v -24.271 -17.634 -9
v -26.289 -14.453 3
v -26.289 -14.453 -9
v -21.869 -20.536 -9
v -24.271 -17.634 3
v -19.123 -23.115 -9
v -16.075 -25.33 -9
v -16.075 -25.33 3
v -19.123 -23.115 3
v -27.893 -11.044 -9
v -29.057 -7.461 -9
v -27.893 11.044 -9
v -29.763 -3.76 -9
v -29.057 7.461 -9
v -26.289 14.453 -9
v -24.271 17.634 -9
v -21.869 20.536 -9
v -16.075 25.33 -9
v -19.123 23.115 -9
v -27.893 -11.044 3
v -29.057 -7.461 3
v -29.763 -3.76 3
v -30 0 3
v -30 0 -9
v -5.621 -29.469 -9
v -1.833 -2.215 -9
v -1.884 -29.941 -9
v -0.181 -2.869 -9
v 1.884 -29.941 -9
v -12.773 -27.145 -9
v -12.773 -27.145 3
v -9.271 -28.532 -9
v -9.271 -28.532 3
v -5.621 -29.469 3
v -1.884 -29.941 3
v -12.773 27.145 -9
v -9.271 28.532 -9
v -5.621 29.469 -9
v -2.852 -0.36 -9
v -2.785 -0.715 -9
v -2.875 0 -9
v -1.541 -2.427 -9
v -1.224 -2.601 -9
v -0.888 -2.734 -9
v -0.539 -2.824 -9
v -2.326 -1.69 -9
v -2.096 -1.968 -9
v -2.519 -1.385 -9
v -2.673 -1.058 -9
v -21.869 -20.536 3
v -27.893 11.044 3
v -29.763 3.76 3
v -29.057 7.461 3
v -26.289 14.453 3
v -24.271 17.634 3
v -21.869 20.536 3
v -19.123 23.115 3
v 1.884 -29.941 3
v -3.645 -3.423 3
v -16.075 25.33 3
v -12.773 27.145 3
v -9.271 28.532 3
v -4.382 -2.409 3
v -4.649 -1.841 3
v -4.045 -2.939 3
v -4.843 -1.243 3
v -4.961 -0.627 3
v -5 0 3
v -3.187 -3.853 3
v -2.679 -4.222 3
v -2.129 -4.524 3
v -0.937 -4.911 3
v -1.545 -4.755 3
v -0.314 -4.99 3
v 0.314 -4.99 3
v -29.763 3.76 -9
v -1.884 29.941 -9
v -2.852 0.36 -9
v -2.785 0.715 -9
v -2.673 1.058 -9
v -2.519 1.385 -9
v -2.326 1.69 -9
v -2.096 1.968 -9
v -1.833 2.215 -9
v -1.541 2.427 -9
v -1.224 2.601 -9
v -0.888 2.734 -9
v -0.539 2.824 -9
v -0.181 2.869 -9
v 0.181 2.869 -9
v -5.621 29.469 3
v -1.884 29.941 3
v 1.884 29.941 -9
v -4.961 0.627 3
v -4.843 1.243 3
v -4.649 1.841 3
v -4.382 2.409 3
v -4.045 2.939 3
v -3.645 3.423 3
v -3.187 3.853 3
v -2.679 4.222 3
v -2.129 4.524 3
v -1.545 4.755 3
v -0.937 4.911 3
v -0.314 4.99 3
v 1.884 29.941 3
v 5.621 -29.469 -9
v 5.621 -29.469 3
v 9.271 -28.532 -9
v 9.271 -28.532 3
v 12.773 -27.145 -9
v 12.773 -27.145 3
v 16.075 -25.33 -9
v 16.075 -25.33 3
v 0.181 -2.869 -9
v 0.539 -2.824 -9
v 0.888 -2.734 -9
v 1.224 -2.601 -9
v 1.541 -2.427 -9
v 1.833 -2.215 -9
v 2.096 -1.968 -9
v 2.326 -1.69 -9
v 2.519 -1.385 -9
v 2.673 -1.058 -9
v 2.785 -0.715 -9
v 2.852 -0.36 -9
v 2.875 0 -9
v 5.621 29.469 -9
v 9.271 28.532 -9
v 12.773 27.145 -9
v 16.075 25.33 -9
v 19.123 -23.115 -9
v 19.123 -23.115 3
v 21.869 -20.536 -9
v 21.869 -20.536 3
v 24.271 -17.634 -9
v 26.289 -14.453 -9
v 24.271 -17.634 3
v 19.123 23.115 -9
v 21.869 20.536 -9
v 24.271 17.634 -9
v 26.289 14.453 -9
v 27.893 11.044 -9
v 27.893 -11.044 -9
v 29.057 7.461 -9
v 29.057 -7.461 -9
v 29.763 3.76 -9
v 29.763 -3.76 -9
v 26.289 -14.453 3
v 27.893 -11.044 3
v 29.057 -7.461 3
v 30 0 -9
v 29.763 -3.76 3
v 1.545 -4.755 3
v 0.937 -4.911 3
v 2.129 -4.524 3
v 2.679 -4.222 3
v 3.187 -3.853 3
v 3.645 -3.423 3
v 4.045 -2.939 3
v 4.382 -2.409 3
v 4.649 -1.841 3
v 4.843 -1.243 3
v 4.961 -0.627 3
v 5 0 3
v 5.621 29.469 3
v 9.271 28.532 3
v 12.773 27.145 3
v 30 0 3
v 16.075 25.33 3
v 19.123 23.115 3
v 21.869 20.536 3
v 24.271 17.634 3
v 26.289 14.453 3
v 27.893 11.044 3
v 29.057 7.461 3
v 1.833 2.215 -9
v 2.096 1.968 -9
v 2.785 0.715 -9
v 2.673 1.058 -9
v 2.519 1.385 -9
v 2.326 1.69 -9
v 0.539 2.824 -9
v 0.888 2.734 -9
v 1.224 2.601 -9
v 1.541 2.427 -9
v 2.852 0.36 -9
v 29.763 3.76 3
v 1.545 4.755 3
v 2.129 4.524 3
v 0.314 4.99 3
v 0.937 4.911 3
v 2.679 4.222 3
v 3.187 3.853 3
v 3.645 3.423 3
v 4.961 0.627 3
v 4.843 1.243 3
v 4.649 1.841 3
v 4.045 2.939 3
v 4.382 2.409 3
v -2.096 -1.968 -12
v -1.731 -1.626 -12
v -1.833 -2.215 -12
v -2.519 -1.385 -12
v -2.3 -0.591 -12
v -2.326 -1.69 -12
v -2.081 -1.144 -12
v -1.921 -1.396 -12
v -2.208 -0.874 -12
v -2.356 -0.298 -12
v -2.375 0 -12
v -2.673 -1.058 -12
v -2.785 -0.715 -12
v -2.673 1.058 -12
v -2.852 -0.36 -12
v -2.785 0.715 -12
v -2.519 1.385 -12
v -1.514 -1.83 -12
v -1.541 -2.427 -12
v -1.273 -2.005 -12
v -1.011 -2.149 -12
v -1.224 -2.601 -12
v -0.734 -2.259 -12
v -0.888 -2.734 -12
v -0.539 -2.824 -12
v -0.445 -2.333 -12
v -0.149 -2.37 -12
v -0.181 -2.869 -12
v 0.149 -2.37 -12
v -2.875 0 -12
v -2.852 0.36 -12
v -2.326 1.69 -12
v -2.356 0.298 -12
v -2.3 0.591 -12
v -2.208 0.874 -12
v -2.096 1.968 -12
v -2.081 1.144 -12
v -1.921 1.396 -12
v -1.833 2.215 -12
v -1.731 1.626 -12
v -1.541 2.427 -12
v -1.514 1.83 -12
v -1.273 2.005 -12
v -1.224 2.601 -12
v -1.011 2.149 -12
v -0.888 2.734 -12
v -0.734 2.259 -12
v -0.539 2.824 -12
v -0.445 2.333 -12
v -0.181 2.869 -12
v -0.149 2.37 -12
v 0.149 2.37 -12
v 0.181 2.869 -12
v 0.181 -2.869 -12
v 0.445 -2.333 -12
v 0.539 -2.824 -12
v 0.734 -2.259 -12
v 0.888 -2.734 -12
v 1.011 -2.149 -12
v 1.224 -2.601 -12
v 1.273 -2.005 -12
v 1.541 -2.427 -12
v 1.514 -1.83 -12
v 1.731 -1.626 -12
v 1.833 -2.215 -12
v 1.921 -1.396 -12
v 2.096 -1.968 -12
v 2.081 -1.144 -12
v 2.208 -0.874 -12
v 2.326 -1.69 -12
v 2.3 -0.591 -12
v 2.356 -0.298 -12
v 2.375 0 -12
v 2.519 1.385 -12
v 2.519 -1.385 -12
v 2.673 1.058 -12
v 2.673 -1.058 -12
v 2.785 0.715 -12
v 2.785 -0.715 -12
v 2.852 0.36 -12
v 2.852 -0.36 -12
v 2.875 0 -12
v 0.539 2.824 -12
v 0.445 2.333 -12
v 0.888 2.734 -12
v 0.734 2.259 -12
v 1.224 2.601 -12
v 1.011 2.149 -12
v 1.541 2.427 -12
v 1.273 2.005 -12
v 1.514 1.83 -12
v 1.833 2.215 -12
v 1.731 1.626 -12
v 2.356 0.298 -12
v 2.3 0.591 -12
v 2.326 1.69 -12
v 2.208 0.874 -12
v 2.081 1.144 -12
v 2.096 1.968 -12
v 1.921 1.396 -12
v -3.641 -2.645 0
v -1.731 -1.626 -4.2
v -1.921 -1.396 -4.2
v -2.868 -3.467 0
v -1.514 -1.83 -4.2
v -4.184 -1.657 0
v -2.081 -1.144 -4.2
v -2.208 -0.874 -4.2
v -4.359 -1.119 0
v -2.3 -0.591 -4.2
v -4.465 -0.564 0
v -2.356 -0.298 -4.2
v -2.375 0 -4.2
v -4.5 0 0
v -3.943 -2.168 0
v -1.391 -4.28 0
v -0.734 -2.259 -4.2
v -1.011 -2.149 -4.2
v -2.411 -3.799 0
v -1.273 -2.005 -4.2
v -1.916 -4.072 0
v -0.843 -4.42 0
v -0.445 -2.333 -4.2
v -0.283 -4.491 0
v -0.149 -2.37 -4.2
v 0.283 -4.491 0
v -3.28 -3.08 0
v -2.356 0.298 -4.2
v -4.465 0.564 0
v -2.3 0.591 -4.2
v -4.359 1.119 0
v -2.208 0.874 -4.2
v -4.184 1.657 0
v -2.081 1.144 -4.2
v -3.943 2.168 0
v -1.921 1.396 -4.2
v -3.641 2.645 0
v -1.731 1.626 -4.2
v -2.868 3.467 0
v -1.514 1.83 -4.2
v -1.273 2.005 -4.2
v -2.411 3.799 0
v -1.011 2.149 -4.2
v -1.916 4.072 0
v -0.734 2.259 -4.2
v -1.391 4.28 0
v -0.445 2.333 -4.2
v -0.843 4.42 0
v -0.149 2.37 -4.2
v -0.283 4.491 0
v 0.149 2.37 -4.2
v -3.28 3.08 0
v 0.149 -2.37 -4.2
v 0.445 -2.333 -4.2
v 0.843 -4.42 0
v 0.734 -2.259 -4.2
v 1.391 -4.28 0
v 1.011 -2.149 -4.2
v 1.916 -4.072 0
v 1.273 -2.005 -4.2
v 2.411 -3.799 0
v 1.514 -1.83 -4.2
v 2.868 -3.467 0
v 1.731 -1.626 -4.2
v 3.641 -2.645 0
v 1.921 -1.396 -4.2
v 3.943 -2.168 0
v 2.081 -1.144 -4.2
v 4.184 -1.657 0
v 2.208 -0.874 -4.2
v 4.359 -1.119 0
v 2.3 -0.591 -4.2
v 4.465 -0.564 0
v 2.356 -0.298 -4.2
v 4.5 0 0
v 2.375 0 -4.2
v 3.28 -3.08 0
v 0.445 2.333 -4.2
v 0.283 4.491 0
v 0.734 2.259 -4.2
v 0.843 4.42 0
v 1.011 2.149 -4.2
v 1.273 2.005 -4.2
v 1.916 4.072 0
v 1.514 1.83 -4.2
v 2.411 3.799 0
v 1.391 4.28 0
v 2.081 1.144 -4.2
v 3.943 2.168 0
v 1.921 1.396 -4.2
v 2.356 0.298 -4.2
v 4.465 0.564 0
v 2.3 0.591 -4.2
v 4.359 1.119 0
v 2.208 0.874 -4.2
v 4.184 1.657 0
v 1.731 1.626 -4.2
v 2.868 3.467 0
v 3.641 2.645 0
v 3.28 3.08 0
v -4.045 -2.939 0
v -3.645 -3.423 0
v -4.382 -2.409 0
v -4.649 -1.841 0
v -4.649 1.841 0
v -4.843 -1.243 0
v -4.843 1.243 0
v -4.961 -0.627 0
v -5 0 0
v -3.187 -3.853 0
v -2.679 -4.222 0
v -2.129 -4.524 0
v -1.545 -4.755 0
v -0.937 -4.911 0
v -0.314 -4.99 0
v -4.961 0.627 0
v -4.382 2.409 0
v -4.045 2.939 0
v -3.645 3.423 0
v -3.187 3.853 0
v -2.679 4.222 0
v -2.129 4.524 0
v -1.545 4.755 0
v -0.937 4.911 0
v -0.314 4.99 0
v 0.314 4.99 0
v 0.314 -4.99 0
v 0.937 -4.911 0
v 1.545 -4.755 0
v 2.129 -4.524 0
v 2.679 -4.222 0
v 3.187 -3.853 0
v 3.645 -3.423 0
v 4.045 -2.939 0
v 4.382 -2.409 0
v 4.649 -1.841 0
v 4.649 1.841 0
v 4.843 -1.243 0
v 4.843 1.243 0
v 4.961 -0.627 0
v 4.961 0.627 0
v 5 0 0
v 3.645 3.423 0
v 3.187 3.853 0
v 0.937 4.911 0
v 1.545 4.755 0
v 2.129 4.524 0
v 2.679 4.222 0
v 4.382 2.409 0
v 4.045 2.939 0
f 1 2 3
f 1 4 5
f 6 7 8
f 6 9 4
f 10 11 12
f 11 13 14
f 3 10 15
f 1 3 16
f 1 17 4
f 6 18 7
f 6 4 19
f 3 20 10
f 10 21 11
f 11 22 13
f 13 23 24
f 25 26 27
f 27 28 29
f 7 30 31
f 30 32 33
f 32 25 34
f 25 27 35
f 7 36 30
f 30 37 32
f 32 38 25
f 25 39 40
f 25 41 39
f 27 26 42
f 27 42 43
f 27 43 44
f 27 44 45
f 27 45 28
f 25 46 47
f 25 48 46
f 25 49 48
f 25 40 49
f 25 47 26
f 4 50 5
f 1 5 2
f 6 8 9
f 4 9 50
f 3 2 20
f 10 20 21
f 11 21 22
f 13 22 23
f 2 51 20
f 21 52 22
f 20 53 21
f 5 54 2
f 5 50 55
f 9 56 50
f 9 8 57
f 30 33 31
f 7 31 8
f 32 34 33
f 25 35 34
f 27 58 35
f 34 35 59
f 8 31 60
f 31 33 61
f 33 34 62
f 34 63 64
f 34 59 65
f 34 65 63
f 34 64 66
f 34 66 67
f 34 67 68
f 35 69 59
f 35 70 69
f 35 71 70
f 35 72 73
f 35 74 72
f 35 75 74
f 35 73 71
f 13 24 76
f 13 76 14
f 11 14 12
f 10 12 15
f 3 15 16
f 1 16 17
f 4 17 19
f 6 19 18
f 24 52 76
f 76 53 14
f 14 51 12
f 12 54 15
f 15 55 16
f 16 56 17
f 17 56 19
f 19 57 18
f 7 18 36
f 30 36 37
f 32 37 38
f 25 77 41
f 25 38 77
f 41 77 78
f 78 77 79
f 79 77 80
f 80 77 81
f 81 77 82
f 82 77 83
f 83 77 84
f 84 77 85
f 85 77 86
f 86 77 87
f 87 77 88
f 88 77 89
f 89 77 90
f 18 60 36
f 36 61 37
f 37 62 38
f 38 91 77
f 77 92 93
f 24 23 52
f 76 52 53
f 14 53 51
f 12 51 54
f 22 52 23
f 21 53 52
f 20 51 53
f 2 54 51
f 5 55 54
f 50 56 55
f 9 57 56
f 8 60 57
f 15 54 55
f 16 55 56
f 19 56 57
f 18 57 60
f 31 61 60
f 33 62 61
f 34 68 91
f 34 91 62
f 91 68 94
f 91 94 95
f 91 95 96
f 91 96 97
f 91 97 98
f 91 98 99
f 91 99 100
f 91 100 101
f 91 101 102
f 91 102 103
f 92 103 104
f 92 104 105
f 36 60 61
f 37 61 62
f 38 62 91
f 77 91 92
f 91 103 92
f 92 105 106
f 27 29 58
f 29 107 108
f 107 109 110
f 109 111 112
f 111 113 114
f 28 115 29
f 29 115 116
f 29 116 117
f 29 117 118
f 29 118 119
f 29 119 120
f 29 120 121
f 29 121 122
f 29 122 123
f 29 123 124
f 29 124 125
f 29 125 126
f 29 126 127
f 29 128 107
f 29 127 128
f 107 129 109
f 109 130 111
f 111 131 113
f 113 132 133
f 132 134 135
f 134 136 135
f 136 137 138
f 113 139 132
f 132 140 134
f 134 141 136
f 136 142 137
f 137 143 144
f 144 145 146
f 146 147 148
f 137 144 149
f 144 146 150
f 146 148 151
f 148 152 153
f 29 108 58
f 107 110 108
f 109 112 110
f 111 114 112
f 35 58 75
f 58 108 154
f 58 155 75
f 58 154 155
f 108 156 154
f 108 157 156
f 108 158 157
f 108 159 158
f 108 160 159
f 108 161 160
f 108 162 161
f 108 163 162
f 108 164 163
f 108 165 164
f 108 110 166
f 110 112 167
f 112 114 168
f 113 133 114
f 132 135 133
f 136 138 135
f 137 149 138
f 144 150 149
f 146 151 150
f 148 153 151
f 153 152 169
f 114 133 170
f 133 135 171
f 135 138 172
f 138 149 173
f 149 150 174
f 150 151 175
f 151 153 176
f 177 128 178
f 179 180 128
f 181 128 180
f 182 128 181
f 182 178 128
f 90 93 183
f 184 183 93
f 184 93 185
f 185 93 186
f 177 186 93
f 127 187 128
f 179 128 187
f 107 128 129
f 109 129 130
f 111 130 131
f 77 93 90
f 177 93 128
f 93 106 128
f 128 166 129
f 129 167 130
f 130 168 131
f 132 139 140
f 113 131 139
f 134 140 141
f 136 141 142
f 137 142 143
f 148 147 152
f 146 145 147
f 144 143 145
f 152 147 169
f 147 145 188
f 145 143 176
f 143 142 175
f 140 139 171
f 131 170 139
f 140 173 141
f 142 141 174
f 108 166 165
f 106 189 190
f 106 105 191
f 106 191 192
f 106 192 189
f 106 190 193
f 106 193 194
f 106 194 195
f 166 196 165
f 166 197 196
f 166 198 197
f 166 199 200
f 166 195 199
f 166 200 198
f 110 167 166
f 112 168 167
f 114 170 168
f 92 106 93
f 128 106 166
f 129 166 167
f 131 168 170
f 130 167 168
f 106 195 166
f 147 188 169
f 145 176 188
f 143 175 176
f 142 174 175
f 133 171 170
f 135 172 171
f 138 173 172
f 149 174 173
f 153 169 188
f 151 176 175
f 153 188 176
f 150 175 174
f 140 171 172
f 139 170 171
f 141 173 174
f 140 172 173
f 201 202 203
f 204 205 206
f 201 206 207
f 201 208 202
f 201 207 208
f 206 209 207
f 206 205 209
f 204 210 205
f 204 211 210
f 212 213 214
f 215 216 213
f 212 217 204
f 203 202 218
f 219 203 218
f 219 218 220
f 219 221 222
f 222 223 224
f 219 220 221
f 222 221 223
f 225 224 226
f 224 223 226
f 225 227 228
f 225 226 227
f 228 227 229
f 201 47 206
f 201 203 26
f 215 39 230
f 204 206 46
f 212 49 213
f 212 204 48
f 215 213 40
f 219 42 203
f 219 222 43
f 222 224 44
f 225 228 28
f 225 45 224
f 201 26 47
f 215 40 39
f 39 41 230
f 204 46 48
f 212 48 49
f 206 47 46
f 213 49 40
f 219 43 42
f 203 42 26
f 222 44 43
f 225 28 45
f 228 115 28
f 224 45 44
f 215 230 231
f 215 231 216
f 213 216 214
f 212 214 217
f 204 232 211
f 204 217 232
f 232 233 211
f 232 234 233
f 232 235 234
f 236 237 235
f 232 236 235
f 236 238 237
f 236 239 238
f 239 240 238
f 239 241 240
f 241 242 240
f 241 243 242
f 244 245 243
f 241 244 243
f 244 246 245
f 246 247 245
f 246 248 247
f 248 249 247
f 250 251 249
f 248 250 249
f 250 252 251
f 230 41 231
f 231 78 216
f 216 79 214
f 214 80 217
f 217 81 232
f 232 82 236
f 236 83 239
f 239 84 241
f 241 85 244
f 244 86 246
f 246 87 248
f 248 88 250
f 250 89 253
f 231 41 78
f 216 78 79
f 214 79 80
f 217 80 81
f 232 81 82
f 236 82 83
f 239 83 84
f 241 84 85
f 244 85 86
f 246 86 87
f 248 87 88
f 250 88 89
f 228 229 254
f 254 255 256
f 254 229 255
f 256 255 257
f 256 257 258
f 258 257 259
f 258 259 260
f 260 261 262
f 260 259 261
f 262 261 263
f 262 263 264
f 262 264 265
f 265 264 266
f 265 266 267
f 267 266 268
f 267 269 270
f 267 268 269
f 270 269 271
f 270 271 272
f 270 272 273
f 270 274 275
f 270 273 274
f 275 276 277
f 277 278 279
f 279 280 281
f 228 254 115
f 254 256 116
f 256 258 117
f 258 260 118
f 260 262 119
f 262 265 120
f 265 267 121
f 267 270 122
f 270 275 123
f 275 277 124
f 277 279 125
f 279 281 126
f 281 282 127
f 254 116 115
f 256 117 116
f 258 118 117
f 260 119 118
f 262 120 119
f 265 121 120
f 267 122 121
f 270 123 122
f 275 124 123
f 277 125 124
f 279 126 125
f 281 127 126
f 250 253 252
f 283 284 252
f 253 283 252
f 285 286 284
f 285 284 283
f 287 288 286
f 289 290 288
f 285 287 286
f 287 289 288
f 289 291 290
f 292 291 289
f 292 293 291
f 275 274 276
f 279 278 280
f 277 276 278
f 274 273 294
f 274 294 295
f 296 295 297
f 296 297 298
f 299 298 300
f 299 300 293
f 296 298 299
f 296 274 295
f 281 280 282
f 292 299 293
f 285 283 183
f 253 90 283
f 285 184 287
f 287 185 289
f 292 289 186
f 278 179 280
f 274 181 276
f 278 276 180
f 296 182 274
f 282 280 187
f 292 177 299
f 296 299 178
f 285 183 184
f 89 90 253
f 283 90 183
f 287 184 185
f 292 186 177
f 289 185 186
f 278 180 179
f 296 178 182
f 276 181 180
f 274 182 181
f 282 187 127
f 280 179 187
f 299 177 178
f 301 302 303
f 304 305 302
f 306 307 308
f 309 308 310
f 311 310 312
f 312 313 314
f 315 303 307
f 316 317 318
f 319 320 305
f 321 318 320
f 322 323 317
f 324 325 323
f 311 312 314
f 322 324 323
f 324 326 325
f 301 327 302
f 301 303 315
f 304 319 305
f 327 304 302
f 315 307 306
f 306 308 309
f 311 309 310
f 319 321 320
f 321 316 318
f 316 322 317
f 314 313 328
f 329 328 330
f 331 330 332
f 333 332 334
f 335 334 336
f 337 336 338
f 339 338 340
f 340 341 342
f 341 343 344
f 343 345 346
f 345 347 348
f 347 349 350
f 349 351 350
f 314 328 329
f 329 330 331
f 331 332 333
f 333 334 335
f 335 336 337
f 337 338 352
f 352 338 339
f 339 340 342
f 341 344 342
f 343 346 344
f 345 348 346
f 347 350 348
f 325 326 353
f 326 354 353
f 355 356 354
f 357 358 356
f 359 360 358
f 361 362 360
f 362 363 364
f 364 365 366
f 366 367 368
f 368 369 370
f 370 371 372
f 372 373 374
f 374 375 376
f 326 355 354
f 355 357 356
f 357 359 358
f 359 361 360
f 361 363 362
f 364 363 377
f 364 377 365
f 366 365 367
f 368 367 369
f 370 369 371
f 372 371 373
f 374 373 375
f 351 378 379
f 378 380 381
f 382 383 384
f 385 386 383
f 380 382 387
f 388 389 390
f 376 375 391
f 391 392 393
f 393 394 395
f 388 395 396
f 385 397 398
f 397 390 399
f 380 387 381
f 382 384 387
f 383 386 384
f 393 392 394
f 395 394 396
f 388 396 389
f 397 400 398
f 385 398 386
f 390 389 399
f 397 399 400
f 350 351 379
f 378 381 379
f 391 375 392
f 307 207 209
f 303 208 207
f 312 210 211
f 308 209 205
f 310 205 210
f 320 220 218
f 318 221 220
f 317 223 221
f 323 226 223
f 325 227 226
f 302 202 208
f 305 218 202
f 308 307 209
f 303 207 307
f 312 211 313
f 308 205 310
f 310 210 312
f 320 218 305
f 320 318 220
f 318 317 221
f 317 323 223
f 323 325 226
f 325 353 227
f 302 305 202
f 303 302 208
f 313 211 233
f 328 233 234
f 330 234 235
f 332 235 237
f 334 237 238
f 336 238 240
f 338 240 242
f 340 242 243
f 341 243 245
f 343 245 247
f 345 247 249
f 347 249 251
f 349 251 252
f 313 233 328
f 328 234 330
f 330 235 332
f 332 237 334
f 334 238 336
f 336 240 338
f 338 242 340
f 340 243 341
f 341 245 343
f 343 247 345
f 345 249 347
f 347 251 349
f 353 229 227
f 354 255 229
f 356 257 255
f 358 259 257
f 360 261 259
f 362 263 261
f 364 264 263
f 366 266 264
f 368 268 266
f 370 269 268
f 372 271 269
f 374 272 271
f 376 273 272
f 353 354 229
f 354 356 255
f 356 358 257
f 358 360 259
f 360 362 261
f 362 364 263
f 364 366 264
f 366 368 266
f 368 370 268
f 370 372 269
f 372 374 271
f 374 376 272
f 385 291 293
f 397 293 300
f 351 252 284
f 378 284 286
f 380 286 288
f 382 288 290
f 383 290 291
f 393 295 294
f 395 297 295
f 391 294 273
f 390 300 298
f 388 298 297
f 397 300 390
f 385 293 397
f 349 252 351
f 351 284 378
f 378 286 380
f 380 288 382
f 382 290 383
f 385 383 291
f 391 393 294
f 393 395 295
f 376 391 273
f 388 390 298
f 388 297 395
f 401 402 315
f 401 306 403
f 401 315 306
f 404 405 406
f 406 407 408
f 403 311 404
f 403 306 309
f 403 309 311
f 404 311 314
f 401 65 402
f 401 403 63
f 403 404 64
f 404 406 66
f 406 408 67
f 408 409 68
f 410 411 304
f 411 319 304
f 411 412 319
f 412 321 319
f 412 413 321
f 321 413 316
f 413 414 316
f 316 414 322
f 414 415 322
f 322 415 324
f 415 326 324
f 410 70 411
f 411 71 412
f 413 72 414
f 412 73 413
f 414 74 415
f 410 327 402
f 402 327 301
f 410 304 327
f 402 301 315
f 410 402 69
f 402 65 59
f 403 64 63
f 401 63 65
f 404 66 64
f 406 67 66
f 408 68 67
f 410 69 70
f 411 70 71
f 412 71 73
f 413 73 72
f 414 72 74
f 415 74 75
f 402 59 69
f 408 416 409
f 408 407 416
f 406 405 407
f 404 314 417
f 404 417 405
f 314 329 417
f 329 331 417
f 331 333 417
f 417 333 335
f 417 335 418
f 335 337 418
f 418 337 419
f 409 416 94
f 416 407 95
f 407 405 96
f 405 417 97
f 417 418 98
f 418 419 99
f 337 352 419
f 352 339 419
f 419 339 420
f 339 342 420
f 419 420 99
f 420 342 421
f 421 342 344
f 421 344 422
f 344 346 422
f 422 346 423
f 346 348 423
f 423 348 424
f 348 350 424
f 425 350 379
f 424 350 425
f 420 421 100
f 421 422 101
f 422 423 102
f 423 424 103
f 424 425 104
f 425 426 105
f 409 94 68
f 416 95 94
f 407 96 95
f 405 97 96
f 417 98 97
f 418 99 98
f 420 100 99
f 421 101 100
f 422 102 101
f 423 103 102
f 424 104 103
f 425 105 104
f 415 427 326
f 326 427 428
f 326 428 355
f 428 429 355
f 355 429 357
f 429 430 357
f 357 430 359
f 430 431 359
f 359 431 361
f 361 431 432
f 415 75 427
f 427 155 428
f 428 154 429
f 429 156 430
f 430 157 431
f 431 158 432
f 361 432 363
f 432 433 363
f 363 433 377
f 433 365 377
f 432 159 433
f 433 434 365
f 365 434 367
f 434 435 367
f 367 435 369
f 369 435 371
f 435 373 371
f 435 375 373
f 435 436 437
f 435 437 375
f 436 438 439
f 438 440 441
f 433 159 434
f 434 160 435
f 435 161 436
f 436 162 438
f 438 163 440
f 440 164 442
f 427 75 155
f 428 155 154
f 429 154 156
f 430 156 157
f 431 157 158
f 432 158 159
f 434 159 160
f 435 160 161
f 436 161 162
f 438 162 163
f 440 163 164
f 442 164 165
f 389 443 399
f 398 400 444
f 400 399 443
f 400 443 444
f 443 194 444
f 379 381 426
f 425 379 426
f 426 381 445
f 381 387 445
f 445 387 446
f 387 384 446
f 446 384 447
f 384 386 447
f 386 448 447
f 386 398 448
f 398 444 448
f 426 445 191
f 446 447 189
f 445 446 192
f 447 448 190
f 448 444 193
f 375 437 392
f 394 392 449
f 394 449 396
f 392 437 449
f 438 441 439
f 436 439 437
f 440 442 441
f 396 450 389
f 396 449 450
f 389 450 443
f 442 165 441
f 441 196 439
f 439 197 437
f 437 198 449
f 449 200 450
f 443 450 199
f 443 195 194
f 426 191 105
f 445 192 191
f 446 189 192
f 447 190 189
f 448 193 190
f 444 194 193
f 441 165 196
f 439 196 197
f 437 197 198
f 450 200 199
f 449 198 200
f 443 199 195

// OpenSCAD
$fn = 50;

difference() {
	union() {
		translate(v = [0, 0, -9.0]) {
			cylinder(h = 12, r = 30.0);
		}
		#translate(v = [0, 0, -12.0]) {
			cylinder(h = 12, r = 2.875);
		}
	}
	union() {
		translate(v = [0, 0, 0]) {
			rotate(a = [0, 0, 0]) {
				difference() {
					union() {
						translate(v = [0, 0, -12.0]) {
							cylinder(h = 12, r = 2.25);
						}
						translate(v = [0, 0, -4.2]) {
							cylinder(h = 4.2, r1 = 2.375, r2 = 4.5);
						}
						translate(v = [0, 0, -12.0]) {
							cylinder(h = 12, r = 2.375);
						}
						translate(v = [0, 0, -12.0]) {
							cylinder(h = 12, r = 2.25);
						}
					}
					union();
				}
			}
		}
		#cylinder(h = 3, r = 5.0);
	}
}
